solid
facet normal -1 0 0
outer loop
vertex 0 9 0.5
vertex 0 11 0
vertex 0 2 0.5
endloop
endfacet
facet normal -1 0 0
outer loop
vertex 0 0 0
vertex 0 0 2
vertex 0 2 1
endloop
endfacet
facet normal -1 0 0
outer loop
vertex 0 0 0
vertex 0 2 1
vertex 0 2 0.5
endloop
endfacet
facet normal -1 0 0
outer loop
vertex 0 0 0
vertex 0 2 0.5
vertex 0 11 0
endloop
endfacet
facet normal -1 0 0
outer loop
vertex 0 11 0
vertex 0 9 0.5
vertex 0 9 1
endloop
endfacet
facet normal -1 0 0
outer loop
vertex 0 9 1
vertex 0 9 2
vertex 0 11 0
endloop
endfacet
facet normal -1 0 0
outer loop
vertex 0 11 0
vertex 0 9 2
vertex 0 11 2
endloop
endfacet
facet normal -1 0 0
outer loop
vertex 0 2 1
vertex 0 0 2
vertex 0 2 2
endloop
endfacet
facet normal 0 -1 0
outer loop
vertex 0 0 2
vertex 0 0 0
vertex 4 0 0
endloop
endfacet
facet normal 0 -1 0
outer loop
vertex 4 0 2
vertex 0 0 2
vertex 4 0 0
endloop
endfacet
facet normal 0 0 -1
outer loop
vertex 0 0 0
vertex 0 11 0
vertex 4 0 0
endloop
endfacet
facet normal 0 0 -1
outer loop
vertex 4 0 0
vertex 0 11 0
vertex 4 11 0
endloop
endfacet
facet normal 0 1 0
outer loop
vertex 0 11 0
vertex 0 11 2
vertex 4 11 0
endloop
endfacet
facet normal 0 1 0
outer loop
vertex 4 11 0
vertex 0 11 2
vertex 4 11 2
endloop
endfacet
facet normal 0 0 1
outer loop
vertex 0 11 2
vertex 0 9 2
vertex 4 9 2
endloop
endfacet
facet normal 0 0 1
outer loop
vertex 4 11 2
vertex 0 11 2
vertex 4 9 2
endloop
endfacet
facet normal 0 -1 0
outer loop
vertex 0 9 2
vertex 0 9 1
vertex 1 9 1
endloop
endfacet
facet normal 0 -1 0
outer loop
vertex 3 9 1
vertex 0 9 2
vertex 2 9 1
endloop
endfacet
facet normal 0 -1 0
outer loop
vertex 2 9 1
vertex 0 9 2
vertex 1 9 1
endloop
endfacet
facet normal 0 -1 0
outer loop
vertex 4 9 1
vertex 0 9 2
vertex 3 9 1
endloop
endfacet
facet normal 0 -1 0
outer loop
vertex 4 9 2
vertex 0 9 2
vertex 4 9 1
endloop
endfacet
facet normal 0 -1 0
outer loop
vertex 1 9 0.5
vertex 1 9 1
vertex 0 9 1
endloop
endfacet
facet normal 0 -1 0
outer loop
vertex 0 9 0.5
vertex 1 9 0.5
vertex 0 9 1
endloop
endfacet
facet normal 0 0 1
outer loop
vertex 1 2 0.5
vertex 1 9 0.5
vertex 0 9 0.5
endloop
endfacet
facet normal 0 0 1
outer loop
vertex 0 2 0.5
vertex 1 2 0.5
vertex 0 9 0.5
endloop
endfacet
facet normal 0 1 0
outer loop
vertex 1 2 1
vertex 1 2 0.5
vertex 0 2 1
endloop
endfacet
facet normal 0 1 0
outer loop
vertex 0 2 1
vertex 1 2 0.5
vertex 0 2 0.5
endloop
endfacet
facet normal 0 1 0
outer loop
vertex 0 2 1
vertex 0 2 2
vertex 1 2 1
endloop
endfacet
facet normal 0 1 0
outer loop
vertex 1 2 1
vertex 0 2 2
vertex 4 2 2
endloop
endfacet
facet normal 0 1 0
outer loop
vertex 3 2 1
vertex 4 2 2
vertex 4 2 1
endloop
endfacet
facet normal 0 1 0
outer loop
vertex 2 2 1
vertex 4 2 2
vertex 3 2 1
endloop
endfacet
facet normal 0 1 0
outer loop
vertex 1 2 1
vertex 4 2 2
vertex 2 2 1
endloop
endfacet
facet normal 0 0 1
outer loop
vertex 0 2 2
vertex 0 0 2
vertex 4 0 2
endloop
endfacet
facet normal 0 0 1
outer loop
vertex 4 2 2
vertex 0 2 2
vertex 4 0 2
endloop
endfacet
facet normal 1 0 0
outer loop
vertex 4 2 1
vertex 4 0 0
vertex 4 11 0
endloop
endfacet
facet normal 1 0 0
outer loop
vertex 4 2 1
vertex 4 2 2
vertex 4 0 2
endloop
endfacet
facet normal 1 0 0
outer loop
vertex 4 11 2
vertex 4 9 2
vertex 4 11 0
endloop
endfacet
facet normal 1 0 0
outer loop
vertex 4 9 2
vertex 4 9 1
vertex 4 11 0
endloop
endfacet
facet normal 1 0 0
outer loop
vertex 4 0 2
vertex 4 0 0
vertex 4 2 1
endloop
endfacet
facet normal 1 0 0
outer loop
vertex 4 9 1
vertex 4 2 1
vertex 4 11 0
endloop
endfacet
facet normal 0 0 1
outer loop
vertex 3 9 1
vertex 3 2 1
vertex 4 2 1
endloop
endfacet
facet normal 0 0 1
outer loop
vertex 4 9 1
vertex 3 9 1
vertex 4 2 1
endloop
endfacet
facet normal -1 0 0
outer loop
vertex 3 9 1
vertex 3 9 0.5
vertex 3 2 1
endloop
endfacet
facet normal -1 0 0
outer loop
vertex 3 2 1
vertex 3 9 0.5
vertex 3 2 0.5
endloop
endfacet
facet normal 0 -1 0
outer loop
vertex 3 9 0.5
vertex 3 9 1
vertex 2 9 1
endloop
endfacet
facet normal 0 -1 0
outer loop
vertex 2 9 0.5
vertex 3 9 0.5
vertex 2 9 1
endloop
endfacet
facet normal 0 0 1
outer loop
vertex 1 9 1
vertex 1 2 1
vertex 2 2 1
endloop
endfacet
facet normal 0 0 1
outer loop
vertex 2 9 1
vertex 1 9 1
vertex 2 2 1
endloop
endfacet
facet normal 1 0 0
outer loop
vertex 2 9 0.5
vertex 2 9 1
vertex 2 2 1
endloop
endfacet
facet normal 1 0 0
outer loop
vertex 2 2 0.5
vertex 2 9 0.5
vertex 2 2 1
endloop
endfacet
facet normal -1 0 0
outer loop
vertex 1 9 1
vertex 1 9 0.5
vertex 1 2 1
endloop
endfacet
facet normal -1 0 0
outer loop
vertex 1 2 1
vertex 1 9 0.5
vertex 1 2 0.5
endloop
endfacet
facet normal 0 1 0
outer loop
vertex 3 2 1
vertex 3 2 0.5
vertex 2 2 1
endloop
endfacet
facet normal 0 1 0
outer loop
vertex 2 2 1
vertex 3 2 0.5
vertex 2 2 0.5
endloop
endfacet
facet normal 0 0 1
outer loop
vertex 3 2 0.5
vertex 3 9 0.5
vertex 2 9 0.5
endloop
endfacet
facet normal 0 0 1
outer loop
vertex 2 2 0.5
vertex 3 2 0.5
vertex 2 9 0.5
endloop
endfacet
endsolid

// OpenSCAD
difference() {
	cube([4,11,1]);
	translate([0,2,0.5])
		cube([1,7,0.5]);
	translate([2,2,0.5])
		cube([1,7,0.5]);
}
translate([0,11-2,1])
	cube([4,2,1]);
translate([0,0,1])
	cube([4,2,1]);
